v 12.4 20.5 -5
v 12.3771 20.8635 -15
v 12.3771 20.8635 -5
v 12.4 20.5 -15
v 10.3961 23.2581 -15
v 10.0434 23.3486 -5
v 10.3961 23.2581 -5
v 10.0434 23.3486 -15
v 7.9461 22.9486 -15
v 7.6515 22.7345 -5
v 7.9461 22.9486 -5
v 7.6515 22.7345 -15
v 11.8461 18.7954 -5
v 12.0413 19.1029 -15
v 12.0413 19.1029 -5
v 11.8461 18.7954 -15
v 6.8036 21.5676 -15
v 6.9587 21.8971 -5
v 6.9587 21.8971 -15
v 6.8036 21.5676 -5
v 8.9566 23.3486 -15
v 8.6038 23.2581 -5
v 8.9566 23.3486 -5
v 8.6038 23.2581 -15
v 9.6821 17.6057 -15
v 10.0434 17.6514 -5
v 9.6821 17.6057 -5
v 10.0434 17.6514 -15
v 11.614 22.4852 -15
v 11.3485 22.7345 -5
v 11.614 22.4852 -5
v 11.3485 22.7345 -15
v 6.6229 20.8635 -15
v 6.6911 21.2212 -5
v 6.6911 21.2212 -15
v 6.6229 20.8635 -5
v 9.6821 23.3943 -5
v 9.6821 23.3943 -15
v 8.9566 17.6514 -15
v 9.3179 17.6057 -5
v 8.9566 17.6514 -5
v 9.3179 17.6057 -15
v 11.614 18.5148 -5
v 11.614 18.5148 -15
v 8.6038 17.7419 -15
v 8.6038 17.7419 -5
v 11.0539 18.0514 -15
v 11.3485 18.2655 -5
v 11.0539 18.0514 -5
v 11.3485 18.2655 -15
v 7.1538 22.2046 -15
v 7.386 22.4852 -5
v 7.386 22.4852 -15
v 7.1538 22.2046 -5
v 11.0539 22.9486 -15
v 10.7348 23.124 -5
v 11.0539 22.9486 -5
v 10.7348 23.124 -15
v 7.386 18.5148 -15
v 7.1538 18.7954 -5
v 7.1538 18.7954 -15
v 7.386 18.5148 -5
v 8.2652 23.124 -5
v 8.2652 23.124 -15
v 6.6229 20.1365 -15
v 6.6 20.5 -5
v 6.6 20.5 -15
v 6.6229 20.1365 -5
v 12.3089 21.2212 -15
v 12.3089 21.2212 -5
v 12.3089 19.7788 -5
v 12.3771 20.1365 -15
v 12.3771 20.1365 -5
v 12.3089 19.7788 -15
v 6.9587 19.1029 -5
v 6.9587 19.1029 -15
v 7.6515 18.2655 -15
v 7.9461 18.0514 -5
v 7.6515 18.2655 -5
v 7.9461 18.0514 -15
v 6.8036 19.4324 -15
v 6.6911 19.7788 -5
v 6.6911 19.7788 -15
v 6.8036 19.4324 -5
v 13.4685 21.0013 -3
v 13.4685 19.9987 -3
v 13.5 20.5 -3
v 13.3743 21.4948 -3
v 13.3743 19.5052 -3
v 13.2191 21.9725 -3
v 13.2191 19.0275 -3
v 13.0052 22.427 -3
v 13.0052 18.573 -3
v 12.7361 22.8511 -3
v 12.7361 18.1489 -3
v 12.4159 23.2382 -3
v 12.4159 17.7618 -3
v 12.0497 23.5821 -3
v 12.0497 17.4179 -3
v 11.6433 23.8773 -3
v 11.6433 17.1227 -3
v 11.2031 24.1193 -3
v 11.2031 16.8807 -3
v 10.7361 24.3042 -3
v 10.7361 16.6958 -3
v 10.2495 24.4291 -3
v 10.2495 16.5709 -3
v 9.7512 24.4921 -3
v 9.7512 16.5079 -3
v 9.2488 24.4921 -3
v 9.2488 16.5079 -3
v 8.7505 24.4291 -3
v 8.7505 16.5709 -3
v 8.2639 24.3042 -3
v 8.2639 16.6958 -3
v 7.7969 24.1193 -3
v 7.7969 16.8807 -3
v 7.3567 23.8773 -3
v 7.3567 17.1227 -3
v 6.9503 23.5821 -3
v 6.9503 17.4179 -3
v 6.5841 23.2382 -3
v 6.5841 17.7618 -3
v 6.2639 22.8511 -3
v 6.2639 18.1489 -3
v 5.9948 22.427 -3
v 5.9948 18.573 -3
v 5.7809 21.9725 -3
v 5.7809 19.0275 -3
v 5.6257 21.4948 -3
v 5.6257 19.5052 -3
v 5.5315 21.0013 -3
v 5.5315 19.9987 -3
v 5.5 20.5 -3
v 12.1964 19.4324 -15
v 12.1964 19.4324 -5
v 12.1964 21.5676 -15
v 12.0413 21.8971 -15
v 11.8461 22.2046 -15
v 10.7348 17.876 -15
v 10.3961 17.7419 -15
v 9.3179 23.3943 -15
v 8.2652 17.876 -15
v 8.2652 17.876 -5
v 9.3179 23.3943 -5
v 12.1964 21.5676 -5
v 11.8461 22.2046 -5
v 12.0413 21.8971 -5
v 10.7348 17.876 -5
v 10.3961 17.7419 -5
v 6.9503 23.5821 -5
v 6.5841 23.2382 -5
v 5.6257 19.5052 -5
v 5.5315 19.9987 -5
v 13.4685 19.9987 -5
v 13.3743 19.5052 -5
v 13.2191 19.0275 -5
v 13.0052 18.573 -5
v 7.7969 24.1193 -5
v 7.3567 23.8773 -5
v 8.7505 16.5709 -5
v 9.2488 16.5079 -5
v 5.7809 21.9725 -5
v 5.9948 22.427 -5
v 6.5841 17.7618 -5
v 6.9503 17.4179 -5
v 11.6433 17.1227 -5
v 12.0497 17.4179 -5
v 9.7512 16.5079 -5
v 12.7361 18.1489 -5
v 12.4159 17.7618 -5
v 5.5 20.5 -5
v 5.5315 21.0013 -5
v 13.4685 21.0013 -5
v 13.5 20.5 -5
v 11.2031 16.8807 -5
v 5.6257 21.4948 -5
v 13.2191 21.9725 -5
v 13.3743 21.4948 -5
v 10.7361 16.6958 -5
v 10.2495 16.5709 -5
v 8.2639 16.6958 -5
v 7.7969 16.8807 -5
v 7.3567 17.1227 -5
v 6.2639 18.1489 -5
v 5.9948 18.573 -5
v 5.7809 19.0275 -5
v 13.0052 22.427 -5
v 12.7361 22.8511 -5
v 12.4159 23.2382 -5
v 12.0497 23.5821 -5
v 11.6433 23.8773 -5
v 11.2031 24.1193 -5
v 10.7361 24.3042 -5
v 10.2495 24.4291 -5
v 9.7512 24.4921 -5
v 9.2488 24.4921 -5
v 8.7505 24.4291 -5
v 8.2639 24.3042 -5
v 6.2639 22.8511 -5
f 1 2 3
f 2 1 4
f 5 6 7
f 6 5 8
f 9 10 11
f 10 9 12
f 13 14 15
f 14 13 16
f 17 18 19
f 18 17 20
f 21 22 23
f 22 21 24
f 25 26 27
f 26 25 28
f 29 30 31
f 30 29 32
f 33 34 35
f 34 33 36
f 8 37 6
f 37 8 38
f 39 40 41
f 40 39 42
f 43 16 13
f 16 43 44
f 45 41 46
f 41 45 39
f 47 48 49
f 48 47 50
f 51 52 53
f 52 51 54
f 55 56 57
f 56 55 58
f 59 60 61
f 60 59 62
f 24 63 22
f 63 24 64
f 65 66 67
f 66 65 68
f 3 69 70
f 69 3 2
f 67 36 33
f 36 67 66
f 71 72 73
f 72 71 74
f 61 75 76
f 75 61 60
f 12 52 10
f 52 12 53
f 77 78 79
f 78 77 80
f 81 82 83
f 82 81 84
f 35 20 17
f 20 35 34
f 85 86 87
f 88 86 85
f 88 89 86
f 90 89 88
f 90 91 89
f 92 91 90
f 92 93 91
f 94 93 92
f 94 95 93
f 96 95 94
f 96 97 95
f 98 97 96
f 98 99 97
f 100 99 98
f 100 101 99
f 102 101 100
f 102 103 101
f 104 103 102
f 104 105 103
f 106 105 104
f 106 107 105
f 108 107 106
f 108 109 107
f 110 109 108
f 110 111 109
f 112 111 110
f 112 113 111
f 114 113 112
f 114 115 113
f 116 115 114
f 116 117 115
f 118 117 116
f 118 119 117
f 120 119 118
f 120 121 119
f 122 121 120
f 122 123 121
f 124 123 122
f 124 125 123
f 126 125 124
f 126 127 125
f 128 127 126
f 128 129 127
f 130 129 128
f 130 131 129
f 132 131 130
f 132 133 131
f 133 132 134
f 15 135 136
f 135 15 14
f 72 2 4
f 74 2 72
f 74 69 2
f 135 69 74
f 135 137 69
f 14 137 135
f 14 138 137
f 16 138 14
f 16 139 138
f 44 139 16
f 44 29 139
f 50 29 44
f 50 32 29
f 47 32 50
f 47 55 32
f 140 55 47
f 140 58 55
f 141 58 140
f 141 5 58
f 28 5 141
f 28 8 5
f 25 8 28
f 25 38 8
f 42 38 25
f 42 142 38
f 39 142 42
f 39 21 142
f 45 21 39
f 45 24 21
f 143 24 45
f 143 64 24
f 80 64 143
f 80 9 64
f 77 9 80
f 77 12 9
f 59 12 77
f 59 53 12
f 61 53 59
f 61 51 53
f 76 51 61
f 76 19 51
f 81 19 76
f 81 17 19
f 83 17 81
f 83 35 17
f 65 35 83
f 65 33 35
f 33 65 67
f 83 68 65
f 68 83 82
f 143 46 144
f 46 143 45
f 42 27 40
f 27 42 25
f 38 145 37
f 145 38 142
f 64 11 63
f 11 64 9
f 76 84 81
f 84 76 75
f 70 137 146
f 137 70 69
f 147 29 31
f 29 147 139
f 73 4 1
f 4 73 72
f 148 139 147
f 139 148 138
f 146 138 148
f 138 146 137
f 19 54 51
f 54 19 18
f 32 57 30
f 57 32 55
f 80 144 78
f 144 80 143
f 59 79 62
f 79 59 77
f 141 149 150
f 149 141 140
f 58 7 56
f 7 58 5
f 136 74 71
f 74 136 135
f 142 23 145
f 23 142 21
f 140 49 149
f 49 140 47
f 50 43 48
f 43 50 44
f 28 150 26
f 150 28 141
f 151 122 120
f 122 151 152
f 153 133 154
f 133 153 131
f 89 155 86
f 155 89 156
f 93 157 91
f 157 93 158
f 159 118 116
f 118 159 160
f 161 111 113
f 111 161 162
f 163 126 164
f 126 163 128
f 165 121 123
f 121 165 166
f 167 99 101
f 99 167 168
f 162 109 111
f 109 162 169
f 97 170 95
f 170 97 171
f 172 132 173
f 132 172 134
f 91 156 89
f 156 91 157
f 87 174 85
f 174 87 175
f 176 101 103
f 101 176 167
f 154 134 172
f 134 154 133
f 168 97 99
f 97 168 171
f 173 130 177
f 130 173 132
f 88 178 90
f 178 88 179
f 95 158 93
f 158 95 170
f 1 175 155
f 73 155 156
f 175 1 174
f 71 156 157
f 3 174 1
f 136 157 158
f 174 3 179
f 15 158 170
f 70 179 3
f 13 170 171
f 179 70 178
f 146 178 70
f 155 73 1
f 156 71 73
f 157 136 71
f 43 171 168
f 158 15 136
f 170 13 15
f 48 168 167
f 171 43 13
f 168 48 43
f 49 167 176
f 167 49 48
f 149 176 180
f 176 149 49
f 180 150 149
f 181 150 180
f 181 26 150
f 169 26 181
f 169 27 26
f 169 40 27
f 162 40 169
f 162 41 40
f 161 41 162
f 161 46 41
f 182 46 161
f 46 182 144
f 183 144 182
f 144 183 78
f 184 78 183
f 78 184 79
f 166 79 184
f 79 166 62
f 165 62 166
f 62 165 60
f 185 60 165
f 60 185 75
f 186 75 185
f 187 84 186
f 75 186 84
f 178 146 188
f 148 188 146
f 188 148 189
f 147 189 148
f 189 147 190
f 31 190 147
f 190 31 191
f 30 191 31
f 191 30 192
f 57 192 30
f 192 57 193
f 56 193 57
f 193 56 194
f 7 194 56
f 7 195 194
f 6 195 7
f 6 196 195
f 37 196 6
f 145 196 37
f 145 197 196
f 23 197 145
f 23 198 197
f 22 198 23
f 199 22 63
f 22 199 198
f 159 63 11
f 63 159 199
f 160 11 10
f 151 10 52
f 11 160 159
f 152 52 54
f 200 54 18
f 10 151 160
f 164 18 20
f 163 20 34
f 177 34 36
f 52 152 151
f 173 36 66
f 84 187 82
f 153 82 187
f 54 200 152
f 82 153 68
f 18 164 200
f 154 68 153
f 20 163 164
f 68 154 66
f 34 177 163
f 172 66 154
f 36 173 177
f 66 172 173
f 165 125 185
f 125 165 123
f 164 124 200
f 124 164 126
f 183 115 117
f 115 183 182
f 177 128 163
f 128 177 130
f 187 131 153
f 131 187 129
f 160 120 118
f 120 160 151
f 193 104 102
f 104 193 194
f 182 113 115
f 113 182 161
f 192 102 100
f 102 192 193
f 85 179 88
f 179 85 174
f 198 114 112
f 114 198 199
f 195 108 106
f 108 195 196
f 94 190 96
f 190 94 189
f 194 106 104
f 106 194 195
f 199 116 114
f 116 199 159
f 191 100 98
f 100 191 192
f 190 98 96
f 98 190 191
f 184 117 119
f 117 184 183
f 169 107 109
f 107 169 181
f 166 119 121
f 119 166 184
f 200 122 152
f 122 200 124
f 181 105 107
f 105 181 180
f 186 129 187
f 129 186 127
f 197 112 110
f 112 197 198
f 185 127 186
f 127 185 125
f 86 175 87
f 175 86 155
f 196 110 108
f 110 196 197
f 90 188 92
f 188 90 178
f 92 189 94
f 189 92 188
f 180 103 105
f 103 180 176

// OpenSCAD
use <dongle_breadboard.scad>

rotate([0, 180, 0]) {
  button();
}
